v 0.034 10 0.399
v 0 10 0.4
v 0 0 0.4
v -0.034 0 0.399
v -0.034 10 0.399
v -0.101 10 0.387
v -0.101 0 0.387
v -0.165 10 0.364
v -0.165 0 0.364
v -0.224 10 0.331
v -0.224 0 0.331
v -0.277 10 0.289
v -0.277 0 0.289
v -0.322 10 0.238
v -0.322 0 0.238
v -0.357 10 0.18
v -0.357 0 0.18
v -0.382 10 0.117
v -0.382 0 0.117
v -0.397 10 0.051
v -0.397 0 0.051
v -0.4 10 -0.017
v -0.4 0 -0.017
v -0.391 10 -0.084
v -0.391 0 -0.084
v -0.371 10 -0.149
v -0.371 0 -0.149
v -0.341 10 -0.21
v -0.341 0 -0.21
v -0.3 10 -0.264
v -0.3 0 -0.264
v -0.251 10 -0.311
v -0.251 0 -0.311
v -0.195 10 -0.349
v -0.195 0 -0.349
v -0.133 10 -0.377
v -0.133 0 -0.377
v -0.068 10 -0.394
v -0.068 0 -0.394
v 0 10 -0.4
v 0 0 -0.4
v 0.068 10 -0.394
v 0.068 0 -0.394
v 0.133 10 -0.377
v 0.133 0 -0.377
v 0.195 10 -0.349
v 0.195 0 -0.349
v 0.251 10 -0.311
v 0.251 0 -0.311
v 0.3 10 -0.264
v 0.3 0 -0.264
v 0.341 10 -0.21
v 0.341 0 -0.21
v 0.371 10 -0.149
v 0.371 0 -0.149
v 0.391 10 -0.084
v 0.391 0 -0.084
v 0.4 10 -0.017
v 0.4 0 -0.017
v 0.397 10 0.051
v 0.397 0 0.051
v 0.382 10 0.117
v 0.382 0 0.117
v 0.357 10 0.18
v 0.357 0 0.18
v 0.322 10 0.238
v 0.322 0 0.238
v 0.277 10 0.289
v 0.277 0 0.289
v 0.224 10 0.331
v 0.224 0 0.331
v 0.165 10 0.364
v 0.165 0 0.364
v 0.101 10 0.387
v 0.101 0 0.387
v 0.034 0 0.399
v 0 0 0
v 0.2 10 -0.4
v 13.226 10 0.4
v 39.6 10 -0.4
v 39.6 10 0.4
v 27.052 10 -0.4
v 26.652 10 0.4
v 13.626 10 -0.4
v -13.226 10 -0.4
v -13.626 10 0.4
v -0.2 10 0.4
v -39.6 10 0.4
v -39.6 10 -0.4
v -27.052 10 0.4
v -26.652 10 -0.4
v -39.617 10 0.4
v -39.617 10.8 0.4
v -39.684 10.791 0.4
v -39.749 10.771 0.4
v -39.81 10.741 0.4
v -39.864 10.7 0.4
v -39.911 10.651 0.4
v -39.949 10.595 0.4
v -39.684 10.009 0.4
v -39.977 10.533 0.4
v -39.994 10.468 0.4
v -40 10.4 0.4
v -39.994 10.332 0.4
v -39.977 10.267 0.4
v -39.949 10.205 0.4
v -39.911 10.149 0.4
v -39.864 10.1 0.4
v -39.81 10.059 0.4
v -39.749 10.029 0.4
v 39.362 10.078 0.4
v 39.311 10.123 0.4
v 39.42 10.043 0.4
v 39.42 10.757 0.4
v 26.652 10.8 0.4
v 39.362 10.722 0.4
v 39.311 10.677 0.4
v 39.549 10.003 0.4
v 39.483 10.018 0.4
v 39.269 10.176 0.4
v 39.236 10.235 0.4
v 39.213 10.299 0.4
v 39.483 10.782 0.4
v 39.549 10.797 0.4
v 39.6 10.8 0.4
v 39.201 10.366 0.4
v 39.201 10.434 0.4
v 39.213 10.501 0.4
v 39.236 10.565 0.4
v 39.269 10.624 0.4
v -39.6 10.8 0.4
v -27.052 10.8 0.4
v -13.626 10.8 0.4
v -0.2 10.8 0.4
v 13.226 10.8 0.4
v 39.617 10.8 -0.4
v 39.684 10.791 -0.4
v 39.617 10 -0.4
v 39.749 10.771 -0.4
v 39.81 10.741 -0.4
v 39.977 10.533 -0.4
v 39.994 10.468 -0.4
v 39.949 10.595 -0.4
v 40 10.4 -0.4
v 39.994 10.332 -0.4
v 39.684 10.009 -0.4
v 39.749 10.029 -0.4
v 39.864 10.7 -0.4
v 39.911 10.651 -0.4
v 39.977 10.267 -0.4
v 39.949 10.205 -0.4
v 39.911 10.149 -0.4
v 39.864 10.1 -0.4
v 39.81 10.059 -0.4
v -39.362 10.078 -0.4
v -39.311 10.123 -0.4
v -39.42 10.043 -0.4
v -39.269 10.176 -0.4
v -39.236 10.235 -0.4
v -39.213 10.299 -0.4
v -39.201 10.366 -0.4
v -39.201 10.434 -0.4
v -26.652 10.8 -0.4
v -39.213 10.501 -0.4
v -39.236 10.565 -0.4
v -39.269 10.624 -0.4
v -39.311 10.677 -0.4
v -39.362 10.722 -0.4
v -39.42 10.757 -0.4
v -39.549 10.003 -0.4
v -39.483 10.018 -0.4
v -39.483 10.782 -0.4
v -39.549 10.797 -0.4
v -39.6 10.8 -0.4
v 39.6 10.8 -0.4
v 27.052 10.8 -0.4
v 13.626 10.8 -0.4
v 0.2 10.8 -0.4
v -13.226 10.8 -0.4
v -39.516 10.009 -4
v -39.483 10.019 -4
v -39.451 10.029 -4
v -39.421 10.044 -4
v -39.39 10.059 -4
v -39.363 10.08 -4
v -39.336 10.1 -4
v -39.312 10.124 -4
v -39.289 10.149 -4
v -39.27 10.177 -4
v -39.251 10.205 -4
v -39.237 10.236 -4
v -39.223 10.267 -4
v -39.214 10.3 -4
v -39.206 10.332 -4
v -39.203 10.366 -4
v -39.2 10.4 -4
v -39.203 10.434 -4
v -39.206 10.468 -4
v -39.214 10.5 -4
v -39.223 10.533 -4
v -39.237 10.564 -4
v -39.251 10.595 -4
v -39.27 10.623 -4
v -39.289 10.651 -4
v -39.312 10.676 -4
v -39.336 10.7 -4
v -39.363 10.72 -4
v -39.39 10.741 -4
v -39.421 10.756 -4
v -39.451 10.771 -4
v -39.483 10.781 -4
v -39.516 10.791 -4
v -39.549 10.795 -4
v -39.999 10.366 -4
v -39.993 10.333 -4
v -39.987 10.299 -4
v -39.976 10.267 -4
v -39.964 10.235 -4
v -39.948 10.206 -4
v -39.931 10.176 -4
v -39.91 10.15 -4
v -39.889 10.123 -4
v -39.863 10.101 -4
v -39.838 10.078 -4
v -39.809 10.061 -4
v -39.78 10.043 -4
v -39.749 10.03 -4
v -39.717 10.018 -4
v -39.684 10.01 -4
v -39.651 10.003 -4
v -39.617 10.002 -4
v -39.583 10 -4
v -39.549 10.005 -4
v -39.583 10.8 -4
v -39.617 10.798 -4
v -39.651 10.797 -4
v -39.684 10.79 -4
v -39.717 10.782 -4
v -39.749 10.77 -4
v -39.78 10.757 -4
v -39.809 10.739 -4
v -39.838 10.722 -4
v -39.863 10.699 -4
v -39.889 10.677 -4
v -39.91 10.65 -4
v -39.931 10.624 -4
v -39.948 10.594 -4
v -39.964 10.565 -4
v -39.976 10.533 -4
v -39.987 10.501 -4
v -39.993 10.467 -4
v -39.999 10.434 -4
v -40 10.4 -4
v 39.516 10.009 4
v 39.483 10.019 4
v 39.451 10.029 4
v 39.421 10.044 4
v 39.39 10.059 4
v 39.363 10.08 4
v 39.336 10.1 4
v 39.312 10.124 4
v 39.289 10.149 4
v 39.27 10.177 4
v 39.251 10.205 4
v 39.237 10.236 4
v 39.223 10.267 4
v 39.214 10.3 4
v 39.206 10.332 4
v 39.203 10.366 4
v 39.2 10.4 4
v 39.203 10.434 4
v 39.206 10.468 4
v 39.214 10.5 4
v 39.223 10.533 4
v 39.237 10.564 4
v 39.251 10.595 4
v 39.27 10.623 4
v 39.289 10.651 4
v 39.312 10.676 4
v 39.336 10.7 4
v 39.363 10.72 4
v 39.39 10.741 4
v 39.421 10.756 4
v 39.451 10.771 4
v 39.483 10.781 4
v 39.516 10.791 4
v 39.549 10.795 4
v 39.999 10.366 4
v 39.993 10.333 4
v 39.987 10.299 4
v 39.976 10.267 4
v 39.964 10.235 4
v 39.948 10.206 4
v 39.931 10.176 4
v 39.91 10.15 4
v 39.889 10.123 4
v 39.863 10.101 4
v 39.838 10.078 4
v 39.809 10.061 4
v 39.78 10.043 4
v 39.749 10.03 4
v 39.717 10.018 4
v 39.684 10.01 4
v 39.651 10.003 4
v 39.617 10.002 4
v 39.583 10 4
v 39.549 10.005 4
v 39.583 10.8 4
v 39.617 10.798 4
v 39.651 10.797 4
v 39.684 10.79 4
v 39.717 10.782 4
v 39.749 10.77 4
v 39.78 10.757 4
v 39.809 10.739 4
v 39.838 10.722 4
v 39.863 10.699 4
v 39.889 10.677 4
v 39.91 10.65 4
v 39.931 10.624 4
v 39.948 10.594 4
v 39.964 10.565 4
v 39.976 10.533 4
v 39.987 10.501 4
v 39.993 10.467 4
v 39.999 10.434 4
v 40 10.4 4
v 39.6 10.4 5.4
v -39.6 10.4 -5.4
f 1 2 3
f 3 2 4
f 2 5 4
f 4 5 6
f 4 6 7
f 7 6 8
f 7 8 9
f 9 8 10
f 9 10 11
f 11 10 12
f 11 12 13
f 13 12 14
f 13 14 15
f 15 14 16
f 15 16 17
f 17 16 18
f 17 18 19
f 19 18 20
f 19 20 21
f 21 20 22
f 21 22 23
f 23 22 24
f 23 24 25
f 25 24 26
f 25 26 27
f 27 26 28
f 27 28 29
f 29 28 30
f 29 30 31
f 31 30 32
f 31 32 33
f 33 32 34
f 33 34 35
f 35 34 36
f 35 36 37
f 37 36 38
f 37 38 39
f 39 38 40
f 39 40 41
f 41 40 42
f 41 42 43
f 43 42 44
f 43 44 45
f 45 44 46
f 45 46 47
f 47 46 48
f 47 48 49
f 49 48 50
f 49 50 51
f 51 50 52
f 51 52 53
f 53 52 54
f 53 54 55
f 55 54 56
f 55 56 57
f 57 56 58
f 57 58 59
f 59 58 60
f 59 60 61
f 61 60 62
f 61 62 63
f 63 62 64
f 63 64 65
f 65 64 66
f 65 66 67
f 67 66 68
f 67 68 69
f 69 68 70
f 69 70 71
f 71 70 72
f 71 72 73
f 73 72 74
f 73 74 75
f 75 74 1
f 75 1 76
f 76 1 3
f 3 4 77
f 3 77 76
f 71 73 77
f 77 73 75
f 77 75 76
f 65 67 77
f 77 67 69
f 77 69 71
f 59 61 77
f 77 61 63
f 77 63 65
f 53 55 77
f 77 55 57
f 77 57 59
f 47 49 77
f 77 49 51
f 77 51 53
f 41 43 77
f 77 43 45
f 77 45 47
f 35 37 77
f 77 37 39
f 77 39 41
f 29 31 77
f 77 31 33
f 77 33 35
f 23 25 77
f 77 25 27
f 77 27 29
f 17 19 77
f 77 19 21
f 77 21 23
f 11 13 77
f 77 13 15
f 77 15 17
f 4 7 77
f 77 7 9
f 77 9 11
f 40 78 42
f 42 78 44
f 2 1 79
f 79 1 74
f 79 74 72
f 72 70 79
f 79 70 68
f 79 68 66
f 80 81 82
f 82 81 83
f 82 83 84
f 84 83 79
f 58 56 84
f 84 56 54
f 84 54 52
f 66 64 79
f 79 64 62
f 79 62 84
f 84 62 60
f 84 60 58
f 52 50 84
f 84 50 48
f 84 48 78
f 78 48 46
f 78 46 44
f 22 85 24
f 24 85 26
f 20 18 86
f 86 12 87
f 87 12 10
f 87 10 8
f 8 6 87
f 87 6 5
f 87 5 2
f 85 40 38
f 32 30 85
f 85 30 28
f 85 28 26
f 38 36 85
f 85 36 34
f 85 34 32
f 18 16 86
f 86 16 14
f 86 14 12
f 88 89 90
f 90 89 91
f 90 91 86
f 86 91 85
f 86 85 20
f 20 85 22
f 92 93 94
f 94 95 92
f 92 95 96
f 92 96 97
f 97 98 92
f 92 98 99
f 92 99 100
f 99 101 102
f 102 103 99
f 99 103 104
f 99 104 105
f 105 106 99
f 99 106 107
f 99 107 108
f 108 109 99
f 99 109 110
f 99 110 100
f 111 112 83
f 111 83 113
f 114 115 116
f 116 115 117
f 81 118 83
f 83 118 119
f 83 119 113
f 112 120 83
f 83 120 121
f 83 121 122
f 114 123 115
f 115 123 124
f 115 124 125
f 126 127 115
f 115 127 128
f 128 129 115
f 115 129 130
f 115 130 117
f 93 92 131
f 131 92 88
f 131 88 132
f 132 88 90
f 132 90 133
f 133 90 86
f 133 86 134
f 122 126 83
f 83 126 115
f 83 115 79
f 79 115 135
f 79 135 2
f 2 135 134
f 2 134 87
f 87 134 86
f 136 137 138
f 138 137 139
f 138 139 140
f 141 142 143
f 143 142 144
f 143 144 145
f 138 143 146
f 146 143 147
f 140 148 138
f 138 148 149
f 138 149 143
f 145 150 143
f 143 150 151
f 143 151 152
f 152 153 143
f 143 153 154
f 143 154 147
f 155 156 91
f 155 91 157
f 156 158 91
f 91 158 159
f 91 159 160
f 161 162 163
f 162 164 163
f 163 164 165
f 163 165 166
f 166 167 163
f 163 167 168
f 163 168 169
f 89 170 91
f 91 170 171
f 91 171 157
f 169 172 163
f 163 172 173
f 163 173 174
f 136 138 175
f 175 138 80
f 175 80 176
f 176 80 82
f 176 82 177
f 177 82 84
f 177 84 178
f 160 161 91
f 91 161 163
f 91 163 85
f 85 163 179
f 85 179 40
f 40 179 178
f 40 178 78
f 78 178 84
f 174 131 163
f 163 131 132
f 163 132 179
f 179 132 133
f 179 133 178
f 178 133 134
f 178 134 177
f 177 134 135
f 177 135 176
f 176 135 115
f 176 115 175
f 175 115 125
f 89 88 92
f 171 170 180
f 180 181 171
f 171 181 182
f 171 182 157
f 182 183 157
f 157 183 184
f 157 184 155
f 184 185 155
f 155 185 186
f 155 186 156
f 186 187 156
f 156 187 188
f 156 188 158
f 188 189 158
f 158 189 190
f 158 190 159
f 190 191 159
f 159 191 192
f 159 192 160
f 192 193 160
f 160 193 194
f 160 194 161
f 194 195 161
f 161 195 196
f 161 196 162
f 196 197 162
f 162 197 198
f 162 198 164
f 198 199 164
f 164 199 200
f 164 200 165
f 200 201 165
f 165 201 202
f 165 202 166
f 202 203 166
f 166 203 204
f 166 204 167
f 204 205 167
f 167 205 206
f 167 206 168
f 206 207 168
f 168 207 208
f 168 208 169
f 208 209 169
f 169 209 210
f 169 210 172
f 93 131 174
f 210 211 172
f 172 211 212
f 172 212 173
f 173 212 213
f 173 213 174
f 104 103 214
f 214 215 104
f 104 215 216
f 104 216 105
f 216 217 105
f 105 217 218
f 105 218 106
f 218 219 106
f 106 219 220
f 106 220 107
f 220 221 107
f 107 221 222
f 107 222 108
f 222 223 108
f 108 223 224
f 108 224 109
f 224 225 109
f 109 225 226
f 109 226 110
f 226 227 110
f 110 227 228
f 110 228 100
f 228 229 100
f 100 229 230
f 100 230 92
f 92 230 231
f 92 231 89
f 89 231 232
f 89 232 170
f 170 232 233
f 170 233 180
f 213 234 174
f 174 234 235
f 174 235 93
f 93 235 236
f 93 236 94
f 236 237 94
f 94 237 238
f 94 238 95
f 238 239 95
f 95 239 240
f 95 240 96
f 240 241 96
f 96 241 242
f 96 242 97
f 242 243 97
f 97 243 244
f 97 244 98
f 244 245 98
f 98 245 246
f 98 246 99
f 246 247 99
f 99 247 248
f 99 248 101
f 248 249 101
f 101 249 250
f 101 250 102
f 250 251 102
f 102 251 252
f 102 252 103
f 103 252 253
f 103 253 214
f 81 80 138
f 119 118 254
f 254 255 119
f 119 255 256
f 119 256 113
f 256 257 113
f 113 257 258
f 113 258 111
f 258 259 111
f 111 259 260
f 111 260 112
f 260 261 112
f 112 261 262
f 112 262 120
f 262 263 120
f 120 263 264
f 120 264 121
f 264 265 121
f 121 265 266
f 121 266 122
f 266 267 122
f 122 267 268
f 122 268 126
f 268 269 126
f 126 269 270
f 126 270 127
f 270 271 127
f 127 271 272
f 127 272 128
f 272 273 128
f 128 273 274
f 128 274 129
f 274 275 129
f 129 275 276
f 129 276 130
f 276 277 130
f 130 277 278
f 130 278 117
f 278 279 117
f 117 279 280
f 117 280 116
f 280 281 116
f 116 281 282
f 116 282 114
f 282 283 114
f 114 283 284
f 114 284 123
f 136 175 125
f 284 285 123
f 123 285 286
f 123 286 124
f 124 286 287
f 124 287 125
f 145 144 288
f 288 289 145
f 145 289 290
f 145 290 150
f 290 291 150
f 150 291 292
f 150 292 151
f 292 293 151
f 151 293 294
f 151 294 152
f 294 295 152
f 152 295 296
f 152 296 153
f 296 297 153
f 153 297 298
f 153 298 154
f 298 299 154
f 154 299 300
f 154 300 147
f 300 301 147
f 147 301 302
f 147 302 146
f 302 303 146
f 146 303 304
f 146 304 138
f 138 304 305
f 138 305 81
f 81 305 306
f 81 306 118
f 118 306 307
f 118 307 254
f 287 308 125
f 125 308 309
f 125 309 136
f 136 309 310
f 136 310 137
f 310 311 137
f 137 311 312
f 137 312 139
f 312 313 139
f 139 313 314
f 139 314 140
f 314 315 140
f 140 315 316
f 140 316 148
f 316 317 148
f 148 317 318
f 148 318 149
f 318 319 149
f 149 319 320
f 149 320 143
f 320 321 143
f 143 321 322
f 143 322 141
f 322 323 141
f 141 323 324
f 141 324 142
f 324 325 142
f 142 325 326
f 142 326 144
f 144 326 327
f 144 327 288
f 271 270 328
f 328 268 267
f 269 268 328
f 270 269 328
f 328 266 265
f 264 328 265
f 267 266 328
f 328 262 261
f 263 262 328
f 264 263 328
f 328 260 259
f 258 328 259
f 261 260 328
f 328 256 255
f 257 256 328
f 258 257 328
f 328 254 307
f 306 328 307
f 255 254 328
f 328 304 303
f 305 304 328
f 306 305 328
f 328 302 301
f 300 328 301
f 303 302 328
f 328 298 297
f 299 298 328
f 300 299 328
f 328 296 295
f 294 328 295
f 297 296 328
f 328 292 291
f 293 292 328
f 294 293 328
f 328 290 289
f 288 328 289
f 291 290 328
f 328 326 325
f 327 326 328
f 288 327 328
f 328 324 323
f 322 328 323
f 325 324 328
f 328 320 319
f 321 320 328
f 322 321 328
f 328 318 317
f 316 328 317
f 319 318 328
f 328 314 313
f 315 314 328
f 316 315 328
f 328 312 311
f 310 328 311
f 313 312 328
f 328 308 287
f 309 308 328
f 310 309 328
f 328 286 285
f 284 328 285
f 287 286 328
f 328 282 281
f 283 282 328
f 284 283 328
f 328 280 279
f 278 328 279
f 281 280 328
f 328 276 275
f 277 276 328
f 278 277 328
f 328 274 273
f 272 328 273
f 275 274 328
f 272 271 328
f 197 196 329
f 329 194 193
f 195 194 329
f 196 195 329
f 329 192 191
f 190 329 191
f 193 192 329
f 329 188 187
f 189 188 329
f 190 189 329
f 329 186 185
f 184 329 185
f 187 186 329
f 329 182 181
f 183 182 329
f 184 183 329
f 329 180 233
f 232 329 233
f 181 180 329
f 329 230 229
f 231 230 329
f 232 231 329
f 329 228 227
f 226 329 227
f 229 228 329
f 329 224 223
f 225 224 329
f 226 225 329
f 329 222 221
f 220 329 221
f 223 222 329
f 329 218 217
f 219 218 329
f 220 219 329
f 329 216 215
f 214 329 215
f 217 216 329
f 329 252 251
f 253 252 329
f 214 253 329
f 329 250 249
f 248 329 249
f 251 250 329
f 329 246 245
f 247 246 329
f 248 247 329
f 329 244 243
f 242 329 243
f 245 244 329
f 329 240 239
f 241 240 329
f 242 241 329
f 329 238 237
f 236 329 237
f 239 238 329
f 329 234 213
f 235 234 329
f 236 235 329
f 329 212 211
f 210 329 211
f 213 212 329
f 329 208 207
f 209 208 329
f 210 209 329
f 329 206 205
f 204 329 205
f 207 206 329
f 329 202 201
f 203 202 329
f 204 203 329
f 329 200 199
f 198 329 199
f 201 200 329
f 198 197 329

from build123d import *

# Parameters (mm, degrees)
SKETCH_1_R      = 0.4
EXTRUDE_1_DEPTH = 10
SKETCH_2_W      = 80
SKETCH_2_H      = 0.8
EXTRUDE_2_DEPTH = 0.8
FILLET_1_R      = 0.4
SKETCH_3_R      = 0.4
EXTRUDE_3_DEPTH = 3.6
SKETCH_4_R      = 0.4
EXTRUDE_4_DEPTH = 3.6


with BuildPart() as part:
    # 草图1 → 凸台-拉伸1 (new body)
    with BuildSketch(Plane(origin=(0, 0, 0), x_dir=(1, 0, 0), z_dir=(0, 1, 0))):
        with Locations(Location((0, 0, 0), (0, 0, 270))):
            Circle(SKETCH_1_R)
    extrude(amount=EXTRUDE_1_DEPTH)

    # 草图2 → 凸台-拉伸2 (add)
    with BuildSketch(Plane(origin=(0, 10, 0), x_dir=(1, 0, 0), z_dir=(0, 1, 0))):
        Rectangle(SKETCH_2_W, SKETCH_2_H)
    extrude(amount=EXTRUDE_2_DEPTH)

    # 圆角1
    fillet_1_edges = [part.edges().sort_by_distance(p)[0] for p in [
        (40, 10, 0),
        (40, 10.8, 0),
        (-40, 10, 0),
        (-40, 10.8, 0),
    ]]
    fillet(fillet_1_edges, radius=FILLET_1_R - 0.0001)  # a hair under: the kernel refuses the full size

    # 草图3 → 凸台-拉伸3 (add)
    with BuildSketch(Plane.XY.offset(0.4)):
        with Locations((39.6, 10.4)):
            Circle(SKETCH_3_R)
    extrude(amount=EXTRUDE_3_DEPTH)

    # 草图4 → 凸台-拉伸4 (add)
    with BuildSketch(Plane(origin=(0, 0, -0.4), x_dir=(-1, 0, 0), z_dir=(0, 0, -1))):
        with Locations((39.6, 10.4)):
            Circle(SKETCH_4_R)
    extrude(amount=EXTRUDE_4_DEPTH)

    # 草图5 → 旋转1 (revolve)
    with BuildSketch(Plane(origin=(0, 10.4, 0), x_dir=(1, 0, 0), z_dir=(0, 1, 0))):
        Polygon((39.6, -4), (39.6, -5.4), (40, -4), align=None)
    revolve(axis=Axis((39.6, 10.4, 4), (0, 0, 1)))

    # 草图6 → 旋转2 (revolve)
    with BuildSketch(Plane(origin=(0, 10.4, 0), x_dir=(1, 0, 0), z_dir=(0, 1, 0))):
        Polygon((-39.6, 4), (-39.6, 5.4), (-40, 4), align=None)
    revolve(axis=Axis((-39.6, 10.4, -4), (0, 0, -1)))


solid = part.part
